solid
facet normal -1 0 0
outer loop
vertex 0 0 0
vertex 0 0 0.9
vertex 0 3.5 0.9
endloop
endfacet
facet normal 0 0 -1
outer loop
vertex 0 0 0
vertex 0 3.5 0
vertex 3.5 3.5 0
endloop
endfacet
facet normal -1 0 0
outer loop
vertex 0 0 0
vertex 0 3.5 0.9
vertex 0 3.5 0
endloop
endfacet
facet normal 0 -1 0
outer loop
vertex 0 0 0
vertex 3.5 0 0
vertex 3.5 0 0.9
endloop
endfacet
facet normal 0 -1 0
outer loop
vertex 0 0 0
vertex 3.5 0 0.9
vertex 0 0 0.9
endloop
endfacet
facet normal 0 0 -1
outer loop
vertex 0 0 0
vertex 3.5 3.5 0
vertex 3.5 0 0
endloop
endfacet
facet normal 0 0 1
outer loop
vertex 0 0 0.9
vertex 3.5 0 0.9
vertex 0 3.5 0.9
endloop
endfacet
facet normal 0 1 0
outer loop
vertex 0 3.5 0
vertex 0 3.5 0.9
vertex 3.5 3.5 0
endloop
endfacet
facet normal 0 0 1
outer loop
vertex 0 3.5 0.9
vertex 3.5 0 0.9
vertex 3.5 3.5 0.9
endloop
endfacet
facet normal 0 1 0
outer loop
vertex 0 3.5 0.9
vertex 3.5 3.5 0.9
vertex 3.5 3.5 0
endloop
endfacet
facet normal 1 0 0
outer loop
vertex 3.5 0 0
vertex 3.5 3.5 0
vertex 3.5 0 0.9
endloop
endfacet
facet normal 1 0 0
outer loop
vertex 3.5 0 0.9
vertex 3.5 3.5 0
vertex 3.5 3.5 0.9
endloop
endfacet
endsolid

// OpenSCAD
/* Warning, this is a very basic generator with a lot of approximation 
input data : [VPQFN, 9GW, 3.5x3.5x0.9mm, 32, , A, C04-00684A]
generated by com.zoubworld.electronics.cad.model3d.Basic
Date : Sun Feb 15 10:50:49 CET 2026
*/

//body
color("black")
translate([0,0,0])
cube([3.5,3.5,0.9], center=false);
